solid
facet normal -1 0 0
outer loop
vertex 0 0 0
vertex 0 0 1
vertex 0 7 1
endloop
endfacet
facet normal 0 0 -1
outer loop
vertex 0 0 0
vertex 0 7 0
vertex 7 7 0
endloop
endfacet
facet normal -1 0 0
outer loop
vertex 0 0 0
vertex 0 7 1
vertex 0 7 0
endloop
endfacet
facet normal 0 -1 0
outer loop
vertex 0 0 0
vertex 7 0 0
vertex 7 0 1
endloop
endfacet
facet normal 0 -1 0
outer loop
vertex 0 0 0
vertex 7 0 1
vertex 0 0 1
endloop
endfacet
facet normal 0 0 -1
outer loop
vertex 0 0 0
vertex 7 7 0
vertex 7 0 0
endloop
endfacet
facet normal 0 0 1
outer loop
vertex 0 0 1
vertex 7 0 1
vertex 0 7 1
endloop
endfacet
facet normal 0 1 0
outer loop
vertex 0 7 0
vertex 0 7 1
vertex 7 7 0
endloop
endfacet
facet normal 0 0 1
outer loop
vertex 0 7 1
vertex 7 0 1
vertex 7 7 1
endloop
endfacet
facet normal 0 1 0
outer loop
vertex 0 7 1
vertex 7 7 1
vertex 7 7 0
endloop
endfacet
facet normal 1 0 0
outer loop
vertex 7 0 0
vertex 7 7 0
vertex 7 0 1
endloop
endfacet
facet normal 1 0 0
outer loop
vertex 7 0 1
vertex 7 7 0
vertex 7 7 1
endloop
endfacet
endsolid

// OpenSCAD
/* Warning, this is a very basic generator with a lot of approximation 
input data : [VQFN, SXB, 7x7x1mm, 44, , A, C04-21421A]
generated by com.zoubworld.electronics.cad.model3d.Basic
Date : Sun Feb 15 10:50:49 CET 2026
*/

//body
color("black")
translate([0,0,0])
cube([7.0,7.0,1.0], center=false);
